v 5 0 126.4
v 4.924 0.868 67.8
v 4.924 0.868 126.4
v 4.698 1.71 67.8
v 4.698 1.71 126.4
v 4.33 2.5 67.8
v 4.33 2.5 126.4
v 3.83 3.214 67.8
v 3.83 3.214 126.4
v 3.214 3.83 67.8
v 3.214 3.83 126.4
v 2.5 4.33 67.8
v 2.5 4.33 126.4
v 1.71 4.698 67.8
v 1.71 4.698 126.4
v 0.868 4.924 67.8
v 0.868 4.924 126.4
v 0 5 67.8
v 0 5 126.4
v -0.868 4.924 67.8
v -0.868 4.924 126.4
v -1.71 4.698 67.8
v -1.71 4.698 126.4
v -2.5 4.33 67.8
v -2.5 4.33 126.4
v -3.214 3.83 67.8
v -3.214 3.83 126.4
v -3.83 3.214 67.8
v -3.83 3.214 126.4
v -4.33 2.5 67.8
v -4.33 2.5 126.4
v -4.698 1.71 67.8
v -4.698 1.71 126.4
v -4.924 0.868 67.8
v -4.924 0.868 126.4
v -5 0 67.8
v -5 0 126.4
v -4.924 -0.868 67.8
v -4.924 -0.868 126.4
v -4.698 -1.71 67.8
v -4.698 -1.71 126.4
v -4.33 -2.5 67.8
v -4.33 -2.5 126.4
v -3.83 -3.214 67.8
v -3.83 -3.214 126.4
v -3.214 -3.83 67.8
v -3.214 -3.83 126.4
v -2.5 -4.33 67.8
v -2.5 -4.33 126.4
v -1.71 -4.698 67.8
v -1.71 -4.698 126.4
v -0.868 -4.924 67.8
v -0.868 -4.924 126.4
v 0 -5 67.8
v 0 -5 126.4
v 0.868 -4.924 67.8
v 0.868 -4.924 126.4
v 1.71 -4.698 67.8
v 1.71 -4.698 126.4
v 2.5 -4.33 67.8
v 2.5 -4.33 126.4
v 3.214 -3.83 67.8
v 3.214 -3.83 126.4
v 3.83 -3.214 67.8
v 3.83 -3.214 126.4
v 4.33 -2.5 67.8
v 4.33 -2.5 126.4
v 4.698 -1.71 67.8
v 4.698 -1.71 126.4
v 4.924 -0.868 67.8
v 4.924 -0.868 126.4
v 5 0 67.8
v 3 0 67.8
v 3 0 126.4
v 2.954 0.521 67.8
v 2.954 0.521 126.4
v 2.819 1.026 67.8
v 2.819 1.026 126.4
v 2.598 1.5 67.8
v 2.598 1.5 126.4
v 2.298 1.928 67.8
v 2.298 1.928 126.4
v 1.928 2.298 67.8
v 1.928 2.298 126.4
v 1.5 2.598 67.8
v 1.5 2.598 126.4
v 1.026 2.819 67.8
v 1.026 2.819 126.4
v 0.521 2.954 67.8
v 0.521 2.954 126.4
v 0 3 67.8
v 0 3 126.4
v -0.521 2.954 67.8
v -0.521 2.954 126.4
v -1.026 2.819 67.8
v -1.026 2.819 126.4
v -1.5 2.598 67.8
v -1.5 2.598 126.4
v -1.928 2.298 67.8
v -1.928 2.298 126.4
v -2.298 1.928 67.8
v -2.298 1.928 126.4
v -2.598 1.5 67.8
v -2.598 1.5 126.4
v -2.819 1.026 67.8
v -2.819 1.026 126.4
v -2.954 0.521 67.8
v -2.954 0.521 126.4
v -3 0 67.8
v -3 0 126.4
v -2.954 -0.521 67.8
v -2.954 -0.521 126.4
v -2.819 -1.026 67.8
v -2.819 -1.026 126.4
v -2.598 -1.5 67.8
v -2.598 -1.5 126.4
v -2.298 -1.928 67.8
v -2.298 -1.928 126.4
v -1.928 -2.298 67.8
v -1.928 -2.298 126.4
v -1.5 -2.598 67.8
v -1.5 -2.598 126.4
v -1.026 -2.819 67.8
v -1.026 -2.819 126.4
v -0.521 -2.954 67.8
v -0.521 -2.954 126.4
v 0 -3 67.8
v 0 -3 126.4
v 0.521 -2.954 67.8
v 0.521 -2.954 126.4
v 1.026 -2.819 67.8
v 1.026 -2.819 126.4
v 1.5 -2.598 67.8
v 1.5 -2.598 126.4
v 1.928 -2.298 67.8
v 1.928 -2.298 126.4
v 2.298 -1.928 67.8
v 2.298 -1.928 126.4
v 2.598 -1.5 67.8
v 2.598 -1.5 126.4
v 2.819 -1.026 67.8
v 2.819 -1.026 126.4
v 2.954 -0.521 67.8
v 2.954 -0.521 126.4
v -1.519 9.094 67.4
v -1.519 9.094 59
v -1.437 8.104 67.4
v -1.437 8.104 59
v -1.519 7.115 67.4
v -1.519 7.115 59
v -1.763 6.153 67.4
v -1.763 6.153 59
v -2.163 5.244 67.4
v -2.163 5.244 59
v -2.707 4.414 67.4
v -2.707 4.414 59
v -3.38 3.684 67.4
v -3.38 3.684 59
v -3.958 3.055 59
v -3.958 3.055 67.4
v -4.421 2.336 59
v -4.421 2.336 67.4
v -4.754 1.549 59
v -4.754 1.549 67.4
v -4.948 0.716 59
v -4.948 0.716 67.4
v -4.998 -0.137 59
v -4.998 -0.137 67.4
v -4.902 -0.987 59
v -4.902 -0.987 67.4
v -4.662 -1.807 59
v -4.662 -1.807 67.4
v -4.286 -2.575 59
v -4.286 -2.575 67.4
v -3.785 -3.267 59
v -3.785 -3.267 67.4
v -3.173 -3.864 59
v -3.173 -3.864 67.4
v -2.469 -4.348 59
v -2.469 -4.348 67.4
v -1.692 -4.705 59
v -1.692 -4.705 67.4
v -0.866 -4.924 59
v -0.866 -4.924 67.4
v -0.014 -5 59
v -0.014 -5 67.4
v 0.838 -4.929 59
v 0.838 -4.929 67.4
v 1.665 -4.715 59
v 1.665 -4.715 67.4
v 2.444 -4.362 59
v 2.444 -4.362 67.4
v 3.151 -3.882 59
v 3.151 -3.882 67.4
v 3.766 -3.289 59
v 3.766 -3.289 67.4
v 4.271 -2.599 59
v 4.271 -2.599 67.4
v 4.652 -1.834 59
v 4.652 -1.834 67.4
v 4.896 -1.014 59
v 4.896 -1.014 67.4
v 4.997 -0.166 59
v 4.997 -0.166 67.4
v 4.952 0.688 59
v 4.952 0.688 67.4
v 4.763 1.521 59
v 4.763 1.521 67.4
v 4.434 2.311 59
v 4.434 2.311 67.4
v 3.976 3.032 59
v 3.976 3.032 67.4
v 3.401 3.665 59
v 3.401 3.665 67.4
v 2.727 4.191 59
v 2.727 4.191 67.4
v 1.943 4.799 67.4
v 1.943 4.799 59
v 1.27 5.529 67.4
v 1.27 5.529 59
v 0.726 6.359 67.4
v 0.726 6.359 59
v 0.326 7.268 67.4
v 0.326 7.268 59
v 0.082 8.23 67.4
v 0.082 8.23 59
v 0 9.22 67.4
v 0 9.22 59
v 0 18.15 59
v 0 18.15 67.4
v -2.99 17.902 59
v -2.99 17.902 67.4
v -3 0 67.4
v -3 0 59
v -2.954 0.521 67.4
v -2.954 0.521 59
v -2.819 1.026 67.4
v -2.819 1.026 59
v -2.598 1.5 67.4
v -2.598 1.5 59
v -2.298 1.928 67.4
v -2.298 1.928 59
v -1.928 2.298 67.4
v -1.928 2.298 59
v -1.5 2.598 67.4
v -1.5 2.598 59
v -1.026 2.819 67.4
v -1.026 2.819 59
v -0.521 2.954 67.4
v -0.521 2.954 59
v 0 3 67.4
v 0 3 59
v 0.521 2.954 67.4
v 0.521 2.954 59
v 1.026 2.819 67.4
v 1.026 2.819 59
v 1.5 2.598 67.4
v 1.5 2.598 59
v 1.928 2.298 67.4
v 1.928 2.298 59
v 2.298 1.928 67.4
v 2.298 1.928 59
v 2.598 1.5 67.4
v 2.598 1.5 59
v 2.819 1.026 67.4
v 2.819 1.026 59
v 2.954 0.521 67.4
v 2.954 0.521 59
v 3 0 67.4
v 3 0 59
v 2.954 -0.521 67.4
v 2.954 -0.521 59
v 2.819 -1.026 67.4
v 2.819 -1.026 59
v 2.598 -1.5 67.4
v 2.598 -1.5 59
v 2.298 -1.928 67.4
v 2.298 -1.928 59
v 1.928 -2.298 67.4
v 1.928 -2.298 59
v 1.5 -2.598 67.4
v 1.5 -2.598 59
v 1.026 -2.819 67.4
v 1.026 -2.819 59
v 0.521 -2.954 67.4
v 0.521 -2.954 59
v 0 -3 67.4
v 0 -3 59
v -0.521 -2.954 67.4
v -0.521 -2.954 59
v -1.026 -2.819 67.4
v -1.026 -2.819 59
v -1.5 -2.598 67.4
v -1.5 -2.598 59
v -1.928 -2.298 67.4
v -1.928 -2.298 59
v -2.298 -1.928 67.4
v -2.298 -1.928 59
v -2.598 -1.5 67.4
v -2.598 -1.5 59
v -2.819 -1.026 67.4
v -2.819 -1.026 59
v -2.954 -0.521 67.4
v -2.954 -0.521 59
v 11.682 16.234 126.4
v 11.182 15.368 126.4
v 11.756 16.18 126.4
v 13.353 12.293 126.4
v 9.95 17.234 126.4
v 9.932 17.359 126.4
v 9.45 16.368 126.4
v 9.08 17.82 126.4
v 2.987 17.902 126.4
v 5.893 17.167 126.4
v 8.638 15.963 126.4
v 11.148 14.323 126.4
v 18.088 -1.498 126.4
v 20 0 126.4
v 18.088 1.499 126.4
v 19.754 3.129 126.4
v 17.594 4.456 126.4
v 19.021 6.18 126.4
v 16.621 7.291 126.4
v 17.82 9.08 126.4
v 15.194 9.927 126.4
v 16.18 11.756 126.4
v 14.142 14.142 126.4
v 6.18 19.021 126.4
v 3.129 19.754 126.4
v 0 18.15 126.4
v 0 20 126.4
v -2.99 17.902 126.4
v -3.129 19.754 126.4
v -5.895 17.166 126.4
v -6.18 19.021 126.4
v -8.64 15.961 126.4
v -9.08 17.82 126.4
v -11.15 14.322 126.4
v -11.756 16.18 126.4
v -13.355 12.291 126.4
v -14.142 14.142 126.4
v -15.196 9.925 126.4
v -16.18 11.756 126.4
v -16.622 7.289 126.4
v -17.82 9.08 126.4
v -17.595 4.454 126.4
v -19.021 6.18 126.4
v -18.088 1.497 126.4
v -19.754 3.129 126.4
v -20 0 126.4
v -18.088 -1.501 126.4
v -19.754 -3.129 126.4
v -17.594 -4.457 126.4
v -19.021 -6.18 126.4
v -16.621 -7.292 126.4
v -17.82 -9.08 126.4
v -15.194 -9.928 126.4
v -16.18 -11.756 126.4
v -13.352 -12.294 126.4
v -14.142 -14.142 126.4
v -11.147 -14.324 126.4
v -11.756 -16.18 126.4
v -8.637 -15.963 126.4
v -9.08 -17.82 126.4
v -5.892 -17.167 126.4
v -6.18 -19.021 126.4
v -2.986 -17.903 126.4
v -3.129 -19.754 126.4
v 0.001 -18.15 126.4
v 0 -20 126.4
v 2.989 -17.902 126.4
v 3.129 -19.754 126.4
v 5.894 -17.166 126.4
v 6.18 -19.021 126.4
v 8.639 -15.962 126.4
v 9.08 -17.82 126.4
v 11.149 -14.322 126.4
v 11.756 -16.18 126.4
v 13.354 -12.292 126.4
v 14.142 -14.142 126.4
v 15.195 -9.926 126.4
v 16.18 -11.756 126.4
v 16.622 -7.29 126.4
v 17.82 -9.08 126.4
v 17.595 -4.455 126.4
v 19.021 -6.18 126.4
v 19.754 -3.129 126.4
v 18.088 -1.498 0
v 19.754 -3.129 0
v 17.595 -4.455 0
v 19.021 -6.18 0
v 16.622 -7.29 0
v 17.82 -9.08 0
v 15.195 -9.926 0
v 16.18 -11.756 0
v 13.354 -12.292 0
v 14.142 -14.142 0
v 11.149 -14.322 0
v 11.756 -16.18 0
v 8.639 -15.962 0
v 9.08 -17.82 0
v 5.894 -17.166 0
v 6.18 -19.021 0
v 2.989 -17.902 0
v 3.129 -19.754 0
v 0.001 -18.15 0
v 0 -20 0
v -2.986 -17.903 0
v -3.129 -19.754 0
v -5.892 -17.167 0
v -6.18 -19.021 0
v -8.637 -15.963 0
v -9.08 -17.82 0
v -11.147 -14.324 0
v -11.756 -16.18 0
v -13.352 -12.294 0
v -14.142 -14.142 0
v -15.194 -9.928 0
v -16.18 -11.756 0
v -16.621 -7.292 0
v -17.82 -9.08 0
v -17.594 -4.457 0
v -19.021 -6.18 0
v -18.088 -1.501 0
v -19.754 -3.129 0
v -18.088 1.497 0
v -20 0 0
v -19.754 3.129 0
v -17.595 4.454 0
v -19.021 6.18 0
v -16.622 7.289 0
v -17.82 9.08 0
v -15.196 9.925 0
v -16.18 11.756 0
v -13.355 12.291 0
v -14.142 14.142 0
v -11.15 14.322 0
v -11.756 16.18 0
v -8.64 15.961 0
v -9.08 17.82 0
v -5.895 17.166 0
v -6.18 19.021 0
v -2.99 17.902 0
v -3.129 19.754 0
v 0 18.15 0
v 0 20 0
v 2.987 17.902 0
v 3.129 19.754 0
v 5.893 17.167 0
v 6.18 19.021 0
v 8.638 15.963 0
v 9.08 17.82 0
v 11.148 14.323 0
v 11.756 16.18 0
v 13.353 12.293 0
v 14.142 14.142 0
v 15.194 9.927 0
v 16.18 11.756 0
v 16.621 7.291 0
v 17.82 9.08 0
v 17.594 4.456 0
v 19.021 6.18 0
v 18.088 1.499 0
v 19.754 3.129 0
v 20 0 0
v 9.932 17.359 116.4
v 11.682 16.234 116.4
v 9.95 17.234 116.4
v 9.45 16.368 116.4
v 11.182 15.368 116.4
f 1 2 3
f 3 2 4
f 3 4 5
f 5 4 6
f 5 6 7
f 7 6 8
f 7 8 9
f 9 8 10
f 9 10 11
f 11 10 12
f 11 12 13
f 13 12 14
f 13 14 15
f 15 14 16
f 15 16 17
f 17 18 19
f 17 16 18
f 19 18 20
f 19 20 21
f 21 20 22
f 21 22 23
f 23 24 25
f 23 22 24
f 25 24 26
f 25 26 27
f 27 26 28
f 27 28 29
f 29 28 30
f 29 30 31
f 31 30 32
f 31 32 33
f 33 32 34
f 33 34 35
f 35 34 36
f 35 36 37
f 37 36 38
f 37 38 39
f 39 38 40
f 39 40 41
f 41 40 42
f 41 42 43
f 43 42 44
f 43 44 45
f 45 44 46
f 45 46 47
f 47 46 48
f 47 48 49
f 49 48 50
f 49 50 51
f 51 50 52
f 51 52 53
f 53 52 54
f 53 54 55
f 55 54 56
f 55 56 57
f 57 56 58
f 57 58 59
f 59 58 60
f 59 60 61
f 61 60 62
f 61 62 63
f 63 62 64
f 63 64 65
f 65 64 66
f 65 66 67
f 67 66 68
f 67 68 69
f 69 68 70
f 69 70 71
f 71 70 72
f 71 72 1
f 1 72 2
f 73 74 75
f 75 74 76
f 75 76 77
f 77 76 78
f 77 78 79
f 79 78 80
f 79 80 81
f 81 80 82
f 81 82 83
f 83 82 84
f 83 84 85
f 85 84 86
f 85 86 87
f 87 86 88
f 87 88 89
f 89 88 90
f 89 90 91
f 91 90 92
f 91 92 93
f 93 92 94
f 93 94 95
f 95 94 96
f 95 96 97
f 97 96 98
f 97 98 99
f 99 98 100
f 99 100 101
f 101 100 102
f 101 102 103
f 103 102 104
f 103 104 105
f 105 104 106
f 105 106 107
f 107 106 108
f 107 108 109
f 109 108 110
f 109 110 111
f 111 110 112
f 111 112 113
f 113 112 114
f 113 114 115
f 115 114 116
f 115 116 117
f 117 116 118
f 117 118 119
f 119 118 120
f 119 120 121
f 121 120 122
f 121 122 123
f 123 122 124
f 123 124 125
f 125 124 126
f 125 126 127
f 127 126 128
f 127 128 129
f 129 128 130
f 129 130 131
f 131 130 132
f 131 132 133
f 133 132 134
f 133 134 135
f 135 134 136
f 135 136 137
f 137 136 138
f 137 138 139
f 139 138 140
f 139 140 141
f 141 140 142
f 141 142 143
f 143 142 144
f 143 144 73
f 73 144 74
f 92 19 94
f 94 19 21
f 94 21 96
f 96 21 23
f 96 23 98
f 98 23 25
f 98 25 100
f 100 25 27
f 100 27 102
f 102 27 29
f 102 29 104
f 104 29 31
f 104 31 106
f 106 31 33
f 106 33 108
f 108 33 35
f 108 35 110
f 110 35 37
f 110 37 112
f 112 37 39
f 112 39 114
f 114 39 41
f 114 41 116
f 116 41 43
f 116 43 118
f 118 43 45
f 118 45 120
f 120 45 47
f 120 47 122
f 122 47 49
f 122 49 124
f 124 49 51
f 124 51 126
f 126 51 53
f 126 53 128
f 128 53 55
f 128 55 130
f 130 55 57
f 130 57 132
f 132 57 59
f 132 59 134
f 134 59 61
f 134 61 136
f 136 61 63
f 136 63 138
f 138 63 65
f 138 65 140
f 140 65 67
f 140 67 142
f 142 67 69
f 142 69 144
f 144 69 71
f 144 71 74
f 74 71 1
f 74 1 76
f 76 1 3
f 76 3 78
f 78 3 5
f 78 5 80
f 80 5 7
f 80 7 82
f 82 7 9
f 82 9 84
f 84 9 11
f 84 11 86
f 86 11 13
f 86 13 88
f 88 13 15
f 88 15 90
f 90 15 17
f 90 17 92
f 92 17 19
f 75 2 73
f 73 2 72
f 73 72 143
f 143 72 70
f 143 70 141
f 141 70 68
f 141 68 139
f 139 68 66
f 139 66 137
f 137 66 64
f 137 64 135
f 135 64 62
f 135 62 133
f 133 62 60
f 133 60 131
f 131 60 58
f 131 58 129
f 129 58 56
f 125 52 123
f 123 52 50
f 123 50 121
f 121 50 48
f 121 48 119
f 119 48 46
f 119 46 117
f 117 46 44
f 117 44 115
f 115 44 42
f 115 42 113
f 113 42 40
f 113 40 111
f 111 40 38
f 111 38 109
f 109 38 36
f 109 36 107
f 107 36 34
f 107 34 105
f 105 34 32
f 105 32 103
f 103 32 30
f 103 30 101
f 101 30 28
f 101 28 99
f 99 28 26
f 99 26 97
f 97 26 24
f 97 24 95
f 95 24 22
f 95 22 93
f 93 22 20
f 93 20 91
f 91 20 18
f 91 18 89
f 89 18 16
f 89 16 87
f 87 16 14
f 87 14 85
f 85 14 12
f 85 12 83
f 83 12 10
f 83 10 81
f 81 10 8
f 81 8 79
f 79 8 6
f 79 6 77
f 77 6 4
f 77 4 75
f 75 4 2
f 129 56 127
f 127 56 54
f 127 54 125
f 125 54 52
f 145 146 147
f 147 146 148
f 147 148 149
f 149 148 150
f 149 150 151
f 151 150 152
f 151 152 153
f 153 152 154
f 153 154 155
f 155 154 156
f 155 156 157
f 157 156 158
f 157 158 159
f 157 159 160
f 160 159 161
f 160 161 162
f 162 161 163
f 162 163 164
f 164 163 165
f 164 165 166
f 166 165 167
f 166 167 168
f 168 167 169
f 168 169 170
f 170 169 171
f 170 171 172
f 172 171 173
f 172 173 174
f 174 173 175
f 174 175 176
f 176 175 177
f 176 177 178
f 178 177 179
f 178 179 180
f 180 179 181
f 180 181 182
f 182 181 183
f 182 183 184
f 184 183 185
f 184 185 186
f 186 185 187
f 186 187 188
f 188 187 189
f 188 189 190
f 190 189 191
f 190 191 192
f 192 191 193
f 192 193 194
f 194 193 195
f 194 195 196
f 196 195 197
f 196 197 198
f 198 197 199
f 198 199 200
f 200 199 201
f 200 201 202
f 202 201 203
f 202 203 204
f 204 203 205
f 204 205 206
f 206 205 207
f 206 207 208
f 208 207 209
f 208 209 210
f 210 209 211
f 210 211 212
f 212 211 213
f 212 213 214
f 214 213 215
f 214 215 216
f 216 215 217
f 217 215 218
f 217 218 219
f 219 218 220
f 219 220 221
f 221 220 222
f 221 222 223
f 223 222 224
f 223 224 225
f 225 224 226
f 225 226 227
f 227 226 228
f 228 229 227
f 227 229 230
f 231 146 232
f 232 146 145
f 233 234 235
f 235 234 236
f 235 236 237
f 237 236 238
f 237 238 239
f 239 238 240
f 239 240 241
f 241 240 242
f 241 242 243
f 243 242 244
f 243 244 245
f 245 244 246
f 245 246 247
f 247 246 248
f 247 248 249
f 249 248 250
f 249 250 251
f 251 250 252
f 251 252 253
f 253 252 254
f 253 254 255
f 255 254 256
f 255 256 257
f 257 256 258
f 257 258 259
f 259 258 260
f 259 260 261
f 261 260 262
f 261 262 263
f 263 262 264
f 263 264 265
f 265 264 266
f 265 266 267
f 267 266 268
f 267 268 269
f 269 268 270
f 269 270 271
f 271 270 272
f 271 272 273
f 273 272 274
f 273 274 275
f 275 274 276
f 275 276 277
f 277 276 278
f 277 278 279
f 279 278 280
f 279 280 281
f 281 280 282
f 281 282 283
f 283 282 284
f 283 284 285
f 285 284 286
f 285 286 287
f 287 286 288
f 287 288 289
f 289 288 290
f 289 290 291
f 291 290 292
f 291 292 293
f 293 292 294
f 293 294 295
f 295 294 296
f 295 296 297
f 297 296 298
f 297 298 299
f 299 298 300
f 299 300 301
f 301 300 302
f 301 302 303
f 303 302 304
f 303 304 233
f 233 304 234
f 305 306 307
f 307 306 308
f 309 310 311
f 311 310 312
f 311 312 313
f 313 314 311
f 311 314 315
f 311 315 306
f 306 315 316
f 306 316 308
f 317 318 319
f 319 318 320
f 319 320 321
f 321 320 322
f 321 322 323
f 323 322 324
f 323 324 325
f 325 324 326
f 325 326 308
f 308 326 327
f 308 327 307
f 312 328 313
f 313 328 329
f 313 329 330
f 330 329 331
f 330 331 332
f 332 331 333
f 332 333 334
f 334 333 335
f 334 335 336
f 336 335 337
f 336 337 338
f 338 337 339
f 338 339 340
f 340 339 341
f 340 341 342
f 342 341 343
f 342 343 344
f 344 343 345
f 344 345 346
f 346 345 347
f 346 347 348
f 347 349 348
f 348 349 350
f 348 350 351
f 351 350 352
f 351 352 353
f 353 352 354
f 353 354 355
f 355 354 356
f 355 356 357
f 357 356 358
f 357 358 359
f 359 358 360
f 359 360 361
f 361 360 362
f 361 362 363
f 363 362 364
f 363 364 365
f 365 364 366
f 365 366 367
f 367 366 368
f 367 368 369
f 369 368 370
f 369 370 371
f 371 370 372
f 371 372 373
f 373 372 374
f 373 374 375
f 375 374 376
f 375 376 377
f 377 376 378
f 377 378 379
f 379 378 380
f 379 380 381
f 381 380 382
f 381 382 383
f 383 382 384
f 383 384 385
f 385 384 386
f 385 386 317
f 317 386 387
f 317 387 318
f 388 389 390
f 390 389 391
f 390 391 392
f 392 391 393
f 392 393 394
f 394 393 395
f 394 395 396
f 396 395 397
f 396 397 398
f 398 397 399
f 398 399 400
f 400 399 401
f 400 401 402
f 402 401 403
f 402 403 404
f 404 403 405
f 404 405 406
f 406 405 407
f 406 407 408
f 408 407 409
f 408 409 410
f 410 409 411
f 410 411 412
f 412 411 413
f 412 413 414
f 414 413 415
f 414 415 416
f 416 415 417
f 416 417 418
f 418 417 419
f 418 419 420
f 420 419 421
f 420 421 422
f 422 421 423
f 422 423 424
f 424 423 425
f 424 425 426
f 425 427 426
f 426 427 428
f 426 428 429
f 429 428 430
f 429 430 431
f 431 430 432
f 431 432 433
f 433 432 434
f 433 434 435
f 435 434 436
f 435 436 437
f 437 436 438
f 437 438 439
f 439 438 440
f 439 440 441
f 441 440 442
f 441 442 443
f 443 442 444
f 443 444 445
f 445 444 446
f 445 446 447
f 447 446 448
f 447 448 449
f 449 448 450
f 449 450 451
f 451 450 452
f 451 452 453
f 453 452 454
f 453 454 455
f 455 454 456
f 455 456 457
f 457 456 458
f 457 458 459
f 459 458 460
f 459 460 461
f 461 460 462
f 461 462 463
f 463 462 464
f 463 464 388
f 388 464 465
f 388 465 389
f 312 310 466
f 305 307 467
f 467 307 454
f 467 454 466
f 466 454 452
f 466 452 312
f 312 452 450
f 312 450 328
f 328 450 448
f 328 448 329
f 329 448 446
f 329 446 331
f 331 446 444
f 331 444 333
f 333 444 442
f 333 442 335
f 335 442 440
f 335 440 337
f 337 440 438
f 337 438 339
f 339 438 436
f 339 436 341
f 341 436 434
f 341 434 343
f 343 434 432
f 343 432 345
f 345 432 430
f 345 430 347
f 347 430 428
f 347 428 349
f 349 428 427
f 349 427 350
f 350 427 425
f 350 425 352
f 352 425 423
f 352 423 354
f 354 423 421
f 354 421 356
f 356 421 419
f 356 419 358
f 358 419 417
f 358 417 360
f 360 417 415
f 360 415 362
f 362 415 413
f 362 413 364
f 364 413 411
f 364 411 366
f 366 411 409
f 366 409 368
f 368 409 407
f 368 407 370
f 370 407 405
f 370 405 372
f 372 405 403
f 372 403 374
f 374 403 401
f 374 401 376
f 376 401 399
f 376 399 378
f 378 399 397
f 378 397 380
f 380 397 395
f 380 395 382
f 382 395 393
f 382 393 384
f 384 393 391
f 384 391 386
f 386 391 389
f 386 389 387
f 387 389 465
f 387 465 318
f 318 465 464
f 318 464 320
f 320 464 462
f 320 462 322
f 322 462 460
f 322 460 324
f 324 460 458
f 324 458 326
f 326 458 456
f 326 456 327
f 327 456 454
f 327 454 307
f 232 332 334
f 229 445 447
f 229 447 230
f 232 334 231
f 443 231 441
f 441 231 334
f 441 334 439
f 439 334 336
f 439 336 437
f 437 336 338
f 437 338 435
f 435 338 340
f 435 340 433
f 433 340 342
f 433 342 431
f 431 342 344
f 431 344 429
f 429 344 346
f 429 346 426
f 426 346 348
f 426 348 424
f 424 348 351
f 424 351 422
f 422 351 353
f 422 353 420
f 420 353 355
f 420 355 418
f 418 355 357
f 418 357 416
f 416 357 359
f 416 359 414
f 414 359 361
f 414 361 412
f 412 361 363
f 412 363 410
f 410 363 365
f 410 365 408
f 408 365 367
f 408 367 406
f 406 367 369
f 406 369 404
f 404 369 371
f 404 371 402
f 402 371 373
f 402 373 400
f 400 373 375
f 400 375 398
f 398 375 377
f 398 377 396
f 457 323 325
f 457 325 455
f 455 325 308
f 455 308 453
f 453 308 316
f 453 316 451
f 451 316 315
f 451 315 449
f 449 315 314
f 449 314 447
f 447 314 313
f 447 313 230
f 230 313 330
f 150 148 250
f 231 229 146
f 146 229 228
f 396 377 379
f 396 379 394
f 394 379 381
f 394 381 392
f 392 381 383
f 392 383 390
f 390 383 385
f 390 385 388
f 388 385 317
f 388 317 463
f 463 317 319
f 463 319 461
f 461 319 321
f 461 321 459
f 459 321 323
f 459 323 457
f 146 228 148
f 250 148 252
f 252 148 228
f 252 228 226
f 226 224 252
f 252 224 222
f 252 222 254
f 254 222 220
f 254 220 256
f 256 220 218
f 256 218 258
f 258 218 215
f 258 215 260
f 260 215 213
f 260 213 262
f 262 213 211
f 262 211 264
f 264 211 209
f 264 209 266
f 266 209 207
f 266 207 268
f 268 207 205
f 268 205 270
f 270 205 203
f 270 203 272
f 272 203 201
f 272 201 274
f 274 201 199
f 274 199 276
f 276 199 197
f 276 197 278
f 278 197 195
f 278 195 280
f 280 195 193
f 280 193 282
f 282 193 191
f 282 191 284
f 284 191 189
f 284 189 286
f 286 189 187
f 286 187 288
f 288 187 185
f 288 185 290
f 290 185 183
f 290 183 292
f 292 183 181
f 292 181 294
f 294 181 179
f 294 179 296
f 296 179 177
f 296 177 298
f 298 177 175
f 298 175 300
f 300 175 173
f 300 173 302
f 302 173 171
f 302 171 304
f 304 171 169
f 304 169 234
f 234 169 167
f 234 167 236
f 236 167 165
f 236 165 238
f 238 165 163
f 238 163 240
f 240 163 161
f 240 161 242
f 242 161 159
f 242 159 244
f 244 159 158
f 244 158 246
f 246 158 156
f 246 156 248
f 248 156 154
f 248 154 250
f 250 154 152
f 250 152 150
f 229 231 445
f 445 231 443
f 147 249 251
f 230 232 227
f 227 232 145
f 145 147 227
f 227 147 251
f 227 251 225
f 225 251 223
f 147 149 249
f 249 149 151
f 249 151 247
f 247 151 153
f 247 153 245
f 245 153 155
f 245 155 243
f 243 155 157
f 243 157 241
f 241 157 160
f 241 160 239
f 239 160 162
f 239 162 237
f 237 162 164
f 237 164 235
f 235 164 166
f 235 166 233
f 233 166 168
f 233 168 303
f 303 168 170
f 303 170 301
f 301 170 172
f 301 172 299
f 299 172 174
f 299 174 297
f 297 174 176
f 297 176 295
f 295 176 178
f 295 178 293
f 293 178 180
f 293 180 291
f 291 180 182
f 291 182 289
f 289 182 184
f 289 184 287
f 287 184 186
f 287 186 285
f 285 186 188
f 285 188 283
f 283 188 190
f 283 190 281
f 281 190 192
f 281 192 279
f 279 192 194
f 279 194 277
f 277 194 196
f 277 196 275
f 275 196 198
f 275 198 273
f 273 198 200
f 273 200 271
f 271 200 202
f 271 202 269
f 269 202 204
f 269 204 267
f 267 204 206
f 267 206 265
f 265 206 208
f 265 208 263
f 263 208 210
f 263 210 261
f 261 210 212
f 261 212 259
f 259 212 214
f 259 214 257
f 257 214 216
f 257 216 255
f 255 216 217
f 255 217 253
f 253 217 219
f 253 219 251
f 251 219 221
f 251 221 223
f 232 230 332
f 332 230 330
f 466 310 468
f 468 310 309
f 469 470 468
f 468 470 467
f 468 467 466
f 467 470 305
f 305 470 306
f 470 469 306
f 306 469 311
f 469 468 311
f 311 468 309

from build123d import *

# Parameters (mm, degrees)
SKETCH_2_R          = 20
SKETCH_2_R_2        = 18.15
EXTRUDE_1_DEPTH     = 126.4
SKETCH_5_R          = 3
EXTRUDE_3_DEPTH     = 126.4
CUT_EXTRUDE1_DEPTH  = 59
CUT_EXTRUDE2_DEPTH  = 59
SKETCH3_R           = 5
SKETCH3_R_2         = 3
BOSS_EXTRUDE1_DEPTH = 58.6
CUT_EXTRUDE3_DEPTH  = 10


with BuildPart() as part:
    # Эскиз2 → Бобышка-Вытянуть1 (new body)
    with BuildSketch(Plane.XY):
        Circle(SKETCH_2_R)
        Circle(SKETCH_2_R_2, mode=Mode.SUBTRACT)
    extrude(amount=EXTRUDE_1_DEPTH)

    # Эскиз5 → Бобышка-Вытянуть3 (add, through all)
    with BuildSketch(Plane(origin=(0, 0, 0), x_dir=(-1, 0, 0), z_dir=(0, 0, -1))):
        with BuildLine():
            Line((0, 18.15), (0, 9.219544457))
            ThreePointArc((0, 9.219544457), (-0.725705562, 6.35915669), (-2.727272727, 4.190702026))
            ThreePointArc((-2.727272727, 4.190702026), (-0.41322314, -4.982895407), (3.380325874, 3.68420914))
            ThreePointArc((3.380325874, 3.68420914), (1.76329678, 6.152747909), (1.518678537, 9.093602999))
            Line((1.518678537, 9.093602999), (2.989737244, 17.902066116))
            ThreePointArc((2.989737244, 17.902066116), (1.5, 18.087910327), (0, 18.15))
        make_face()
        Circle(SKETCH_5_R, mode=Mode.SUBTRACT)
    extrude(amount=-EXTRUDE_3_DEPTH)

    # Sketch1 → Cut-Extrude1 (cut)
    with BuildSketch(Plane(origin=(0, 0, 0), x_dir=(-1, 0, 0), z_dir=(0, 0, -1))):
        with BuildLine():
            Line((0, 18.15), (2.989737244, 17.902066116))
            ThreePointArc((2.989737244, 17.902066116), (-1.5, -18.087910327), (0, 18.15))
        make_face()
    extrude(amount=-CUT_EXTRUDE1_DEPTH, mode=Mode.SUBTRACT)

    # Sketch2 → Cut-Extrude2 (cut)
    with BuildSketch(Plane.XY.offset(126.4)):
        with BuildLine():
            Line((0, 18.15), (-2.989737244, 17.902066116))
            ThreePointArc((-2.989737244, 17.902066116), (1.5, -18.087910327), (0, 18.15))
        make_face()
    extrude(amount=-CUT_EXTRUDE2_DEPTH, mode=Mode.SUBTRACT)

    # Sketch4 → Cut-Extrude3 (cut)
    with BuildSketch(Plane.XY.offset(126.4)):
        with BuildLine():
            Line((9.949874371, 17.23368794), (9.449874371, 16.367662536))
            Line((9.449874371, 16.367662536), (11.181925179, 15.367662536))
            Line((11.181925179, 15.367662536), (11.681925179, 16.23368794))
            ThreePointArc((11.681925179, 16.23368794), (11.905777201, 18.621411015), (9.949874371, 17.23368794))
        make_face()
    extrude(amount=-CUT_EXTRUDE3_DEPTH, mode=Mode.SUBTRACT)


with BuildPart() as body_2:
    # Sketch3 → Boss-Extrude1 (new body)
    with BuildSketch(Plane.XY.offset(126.4)):
        Circle(SKETCH3_R)
        Circle(SKETCH3_R_2, mode=Mode.SUBTRACT)
    extrude(amount=-BOSS_EXTRUDE1_DEPTH)


solid = Compound([part.part, body_2.part])
